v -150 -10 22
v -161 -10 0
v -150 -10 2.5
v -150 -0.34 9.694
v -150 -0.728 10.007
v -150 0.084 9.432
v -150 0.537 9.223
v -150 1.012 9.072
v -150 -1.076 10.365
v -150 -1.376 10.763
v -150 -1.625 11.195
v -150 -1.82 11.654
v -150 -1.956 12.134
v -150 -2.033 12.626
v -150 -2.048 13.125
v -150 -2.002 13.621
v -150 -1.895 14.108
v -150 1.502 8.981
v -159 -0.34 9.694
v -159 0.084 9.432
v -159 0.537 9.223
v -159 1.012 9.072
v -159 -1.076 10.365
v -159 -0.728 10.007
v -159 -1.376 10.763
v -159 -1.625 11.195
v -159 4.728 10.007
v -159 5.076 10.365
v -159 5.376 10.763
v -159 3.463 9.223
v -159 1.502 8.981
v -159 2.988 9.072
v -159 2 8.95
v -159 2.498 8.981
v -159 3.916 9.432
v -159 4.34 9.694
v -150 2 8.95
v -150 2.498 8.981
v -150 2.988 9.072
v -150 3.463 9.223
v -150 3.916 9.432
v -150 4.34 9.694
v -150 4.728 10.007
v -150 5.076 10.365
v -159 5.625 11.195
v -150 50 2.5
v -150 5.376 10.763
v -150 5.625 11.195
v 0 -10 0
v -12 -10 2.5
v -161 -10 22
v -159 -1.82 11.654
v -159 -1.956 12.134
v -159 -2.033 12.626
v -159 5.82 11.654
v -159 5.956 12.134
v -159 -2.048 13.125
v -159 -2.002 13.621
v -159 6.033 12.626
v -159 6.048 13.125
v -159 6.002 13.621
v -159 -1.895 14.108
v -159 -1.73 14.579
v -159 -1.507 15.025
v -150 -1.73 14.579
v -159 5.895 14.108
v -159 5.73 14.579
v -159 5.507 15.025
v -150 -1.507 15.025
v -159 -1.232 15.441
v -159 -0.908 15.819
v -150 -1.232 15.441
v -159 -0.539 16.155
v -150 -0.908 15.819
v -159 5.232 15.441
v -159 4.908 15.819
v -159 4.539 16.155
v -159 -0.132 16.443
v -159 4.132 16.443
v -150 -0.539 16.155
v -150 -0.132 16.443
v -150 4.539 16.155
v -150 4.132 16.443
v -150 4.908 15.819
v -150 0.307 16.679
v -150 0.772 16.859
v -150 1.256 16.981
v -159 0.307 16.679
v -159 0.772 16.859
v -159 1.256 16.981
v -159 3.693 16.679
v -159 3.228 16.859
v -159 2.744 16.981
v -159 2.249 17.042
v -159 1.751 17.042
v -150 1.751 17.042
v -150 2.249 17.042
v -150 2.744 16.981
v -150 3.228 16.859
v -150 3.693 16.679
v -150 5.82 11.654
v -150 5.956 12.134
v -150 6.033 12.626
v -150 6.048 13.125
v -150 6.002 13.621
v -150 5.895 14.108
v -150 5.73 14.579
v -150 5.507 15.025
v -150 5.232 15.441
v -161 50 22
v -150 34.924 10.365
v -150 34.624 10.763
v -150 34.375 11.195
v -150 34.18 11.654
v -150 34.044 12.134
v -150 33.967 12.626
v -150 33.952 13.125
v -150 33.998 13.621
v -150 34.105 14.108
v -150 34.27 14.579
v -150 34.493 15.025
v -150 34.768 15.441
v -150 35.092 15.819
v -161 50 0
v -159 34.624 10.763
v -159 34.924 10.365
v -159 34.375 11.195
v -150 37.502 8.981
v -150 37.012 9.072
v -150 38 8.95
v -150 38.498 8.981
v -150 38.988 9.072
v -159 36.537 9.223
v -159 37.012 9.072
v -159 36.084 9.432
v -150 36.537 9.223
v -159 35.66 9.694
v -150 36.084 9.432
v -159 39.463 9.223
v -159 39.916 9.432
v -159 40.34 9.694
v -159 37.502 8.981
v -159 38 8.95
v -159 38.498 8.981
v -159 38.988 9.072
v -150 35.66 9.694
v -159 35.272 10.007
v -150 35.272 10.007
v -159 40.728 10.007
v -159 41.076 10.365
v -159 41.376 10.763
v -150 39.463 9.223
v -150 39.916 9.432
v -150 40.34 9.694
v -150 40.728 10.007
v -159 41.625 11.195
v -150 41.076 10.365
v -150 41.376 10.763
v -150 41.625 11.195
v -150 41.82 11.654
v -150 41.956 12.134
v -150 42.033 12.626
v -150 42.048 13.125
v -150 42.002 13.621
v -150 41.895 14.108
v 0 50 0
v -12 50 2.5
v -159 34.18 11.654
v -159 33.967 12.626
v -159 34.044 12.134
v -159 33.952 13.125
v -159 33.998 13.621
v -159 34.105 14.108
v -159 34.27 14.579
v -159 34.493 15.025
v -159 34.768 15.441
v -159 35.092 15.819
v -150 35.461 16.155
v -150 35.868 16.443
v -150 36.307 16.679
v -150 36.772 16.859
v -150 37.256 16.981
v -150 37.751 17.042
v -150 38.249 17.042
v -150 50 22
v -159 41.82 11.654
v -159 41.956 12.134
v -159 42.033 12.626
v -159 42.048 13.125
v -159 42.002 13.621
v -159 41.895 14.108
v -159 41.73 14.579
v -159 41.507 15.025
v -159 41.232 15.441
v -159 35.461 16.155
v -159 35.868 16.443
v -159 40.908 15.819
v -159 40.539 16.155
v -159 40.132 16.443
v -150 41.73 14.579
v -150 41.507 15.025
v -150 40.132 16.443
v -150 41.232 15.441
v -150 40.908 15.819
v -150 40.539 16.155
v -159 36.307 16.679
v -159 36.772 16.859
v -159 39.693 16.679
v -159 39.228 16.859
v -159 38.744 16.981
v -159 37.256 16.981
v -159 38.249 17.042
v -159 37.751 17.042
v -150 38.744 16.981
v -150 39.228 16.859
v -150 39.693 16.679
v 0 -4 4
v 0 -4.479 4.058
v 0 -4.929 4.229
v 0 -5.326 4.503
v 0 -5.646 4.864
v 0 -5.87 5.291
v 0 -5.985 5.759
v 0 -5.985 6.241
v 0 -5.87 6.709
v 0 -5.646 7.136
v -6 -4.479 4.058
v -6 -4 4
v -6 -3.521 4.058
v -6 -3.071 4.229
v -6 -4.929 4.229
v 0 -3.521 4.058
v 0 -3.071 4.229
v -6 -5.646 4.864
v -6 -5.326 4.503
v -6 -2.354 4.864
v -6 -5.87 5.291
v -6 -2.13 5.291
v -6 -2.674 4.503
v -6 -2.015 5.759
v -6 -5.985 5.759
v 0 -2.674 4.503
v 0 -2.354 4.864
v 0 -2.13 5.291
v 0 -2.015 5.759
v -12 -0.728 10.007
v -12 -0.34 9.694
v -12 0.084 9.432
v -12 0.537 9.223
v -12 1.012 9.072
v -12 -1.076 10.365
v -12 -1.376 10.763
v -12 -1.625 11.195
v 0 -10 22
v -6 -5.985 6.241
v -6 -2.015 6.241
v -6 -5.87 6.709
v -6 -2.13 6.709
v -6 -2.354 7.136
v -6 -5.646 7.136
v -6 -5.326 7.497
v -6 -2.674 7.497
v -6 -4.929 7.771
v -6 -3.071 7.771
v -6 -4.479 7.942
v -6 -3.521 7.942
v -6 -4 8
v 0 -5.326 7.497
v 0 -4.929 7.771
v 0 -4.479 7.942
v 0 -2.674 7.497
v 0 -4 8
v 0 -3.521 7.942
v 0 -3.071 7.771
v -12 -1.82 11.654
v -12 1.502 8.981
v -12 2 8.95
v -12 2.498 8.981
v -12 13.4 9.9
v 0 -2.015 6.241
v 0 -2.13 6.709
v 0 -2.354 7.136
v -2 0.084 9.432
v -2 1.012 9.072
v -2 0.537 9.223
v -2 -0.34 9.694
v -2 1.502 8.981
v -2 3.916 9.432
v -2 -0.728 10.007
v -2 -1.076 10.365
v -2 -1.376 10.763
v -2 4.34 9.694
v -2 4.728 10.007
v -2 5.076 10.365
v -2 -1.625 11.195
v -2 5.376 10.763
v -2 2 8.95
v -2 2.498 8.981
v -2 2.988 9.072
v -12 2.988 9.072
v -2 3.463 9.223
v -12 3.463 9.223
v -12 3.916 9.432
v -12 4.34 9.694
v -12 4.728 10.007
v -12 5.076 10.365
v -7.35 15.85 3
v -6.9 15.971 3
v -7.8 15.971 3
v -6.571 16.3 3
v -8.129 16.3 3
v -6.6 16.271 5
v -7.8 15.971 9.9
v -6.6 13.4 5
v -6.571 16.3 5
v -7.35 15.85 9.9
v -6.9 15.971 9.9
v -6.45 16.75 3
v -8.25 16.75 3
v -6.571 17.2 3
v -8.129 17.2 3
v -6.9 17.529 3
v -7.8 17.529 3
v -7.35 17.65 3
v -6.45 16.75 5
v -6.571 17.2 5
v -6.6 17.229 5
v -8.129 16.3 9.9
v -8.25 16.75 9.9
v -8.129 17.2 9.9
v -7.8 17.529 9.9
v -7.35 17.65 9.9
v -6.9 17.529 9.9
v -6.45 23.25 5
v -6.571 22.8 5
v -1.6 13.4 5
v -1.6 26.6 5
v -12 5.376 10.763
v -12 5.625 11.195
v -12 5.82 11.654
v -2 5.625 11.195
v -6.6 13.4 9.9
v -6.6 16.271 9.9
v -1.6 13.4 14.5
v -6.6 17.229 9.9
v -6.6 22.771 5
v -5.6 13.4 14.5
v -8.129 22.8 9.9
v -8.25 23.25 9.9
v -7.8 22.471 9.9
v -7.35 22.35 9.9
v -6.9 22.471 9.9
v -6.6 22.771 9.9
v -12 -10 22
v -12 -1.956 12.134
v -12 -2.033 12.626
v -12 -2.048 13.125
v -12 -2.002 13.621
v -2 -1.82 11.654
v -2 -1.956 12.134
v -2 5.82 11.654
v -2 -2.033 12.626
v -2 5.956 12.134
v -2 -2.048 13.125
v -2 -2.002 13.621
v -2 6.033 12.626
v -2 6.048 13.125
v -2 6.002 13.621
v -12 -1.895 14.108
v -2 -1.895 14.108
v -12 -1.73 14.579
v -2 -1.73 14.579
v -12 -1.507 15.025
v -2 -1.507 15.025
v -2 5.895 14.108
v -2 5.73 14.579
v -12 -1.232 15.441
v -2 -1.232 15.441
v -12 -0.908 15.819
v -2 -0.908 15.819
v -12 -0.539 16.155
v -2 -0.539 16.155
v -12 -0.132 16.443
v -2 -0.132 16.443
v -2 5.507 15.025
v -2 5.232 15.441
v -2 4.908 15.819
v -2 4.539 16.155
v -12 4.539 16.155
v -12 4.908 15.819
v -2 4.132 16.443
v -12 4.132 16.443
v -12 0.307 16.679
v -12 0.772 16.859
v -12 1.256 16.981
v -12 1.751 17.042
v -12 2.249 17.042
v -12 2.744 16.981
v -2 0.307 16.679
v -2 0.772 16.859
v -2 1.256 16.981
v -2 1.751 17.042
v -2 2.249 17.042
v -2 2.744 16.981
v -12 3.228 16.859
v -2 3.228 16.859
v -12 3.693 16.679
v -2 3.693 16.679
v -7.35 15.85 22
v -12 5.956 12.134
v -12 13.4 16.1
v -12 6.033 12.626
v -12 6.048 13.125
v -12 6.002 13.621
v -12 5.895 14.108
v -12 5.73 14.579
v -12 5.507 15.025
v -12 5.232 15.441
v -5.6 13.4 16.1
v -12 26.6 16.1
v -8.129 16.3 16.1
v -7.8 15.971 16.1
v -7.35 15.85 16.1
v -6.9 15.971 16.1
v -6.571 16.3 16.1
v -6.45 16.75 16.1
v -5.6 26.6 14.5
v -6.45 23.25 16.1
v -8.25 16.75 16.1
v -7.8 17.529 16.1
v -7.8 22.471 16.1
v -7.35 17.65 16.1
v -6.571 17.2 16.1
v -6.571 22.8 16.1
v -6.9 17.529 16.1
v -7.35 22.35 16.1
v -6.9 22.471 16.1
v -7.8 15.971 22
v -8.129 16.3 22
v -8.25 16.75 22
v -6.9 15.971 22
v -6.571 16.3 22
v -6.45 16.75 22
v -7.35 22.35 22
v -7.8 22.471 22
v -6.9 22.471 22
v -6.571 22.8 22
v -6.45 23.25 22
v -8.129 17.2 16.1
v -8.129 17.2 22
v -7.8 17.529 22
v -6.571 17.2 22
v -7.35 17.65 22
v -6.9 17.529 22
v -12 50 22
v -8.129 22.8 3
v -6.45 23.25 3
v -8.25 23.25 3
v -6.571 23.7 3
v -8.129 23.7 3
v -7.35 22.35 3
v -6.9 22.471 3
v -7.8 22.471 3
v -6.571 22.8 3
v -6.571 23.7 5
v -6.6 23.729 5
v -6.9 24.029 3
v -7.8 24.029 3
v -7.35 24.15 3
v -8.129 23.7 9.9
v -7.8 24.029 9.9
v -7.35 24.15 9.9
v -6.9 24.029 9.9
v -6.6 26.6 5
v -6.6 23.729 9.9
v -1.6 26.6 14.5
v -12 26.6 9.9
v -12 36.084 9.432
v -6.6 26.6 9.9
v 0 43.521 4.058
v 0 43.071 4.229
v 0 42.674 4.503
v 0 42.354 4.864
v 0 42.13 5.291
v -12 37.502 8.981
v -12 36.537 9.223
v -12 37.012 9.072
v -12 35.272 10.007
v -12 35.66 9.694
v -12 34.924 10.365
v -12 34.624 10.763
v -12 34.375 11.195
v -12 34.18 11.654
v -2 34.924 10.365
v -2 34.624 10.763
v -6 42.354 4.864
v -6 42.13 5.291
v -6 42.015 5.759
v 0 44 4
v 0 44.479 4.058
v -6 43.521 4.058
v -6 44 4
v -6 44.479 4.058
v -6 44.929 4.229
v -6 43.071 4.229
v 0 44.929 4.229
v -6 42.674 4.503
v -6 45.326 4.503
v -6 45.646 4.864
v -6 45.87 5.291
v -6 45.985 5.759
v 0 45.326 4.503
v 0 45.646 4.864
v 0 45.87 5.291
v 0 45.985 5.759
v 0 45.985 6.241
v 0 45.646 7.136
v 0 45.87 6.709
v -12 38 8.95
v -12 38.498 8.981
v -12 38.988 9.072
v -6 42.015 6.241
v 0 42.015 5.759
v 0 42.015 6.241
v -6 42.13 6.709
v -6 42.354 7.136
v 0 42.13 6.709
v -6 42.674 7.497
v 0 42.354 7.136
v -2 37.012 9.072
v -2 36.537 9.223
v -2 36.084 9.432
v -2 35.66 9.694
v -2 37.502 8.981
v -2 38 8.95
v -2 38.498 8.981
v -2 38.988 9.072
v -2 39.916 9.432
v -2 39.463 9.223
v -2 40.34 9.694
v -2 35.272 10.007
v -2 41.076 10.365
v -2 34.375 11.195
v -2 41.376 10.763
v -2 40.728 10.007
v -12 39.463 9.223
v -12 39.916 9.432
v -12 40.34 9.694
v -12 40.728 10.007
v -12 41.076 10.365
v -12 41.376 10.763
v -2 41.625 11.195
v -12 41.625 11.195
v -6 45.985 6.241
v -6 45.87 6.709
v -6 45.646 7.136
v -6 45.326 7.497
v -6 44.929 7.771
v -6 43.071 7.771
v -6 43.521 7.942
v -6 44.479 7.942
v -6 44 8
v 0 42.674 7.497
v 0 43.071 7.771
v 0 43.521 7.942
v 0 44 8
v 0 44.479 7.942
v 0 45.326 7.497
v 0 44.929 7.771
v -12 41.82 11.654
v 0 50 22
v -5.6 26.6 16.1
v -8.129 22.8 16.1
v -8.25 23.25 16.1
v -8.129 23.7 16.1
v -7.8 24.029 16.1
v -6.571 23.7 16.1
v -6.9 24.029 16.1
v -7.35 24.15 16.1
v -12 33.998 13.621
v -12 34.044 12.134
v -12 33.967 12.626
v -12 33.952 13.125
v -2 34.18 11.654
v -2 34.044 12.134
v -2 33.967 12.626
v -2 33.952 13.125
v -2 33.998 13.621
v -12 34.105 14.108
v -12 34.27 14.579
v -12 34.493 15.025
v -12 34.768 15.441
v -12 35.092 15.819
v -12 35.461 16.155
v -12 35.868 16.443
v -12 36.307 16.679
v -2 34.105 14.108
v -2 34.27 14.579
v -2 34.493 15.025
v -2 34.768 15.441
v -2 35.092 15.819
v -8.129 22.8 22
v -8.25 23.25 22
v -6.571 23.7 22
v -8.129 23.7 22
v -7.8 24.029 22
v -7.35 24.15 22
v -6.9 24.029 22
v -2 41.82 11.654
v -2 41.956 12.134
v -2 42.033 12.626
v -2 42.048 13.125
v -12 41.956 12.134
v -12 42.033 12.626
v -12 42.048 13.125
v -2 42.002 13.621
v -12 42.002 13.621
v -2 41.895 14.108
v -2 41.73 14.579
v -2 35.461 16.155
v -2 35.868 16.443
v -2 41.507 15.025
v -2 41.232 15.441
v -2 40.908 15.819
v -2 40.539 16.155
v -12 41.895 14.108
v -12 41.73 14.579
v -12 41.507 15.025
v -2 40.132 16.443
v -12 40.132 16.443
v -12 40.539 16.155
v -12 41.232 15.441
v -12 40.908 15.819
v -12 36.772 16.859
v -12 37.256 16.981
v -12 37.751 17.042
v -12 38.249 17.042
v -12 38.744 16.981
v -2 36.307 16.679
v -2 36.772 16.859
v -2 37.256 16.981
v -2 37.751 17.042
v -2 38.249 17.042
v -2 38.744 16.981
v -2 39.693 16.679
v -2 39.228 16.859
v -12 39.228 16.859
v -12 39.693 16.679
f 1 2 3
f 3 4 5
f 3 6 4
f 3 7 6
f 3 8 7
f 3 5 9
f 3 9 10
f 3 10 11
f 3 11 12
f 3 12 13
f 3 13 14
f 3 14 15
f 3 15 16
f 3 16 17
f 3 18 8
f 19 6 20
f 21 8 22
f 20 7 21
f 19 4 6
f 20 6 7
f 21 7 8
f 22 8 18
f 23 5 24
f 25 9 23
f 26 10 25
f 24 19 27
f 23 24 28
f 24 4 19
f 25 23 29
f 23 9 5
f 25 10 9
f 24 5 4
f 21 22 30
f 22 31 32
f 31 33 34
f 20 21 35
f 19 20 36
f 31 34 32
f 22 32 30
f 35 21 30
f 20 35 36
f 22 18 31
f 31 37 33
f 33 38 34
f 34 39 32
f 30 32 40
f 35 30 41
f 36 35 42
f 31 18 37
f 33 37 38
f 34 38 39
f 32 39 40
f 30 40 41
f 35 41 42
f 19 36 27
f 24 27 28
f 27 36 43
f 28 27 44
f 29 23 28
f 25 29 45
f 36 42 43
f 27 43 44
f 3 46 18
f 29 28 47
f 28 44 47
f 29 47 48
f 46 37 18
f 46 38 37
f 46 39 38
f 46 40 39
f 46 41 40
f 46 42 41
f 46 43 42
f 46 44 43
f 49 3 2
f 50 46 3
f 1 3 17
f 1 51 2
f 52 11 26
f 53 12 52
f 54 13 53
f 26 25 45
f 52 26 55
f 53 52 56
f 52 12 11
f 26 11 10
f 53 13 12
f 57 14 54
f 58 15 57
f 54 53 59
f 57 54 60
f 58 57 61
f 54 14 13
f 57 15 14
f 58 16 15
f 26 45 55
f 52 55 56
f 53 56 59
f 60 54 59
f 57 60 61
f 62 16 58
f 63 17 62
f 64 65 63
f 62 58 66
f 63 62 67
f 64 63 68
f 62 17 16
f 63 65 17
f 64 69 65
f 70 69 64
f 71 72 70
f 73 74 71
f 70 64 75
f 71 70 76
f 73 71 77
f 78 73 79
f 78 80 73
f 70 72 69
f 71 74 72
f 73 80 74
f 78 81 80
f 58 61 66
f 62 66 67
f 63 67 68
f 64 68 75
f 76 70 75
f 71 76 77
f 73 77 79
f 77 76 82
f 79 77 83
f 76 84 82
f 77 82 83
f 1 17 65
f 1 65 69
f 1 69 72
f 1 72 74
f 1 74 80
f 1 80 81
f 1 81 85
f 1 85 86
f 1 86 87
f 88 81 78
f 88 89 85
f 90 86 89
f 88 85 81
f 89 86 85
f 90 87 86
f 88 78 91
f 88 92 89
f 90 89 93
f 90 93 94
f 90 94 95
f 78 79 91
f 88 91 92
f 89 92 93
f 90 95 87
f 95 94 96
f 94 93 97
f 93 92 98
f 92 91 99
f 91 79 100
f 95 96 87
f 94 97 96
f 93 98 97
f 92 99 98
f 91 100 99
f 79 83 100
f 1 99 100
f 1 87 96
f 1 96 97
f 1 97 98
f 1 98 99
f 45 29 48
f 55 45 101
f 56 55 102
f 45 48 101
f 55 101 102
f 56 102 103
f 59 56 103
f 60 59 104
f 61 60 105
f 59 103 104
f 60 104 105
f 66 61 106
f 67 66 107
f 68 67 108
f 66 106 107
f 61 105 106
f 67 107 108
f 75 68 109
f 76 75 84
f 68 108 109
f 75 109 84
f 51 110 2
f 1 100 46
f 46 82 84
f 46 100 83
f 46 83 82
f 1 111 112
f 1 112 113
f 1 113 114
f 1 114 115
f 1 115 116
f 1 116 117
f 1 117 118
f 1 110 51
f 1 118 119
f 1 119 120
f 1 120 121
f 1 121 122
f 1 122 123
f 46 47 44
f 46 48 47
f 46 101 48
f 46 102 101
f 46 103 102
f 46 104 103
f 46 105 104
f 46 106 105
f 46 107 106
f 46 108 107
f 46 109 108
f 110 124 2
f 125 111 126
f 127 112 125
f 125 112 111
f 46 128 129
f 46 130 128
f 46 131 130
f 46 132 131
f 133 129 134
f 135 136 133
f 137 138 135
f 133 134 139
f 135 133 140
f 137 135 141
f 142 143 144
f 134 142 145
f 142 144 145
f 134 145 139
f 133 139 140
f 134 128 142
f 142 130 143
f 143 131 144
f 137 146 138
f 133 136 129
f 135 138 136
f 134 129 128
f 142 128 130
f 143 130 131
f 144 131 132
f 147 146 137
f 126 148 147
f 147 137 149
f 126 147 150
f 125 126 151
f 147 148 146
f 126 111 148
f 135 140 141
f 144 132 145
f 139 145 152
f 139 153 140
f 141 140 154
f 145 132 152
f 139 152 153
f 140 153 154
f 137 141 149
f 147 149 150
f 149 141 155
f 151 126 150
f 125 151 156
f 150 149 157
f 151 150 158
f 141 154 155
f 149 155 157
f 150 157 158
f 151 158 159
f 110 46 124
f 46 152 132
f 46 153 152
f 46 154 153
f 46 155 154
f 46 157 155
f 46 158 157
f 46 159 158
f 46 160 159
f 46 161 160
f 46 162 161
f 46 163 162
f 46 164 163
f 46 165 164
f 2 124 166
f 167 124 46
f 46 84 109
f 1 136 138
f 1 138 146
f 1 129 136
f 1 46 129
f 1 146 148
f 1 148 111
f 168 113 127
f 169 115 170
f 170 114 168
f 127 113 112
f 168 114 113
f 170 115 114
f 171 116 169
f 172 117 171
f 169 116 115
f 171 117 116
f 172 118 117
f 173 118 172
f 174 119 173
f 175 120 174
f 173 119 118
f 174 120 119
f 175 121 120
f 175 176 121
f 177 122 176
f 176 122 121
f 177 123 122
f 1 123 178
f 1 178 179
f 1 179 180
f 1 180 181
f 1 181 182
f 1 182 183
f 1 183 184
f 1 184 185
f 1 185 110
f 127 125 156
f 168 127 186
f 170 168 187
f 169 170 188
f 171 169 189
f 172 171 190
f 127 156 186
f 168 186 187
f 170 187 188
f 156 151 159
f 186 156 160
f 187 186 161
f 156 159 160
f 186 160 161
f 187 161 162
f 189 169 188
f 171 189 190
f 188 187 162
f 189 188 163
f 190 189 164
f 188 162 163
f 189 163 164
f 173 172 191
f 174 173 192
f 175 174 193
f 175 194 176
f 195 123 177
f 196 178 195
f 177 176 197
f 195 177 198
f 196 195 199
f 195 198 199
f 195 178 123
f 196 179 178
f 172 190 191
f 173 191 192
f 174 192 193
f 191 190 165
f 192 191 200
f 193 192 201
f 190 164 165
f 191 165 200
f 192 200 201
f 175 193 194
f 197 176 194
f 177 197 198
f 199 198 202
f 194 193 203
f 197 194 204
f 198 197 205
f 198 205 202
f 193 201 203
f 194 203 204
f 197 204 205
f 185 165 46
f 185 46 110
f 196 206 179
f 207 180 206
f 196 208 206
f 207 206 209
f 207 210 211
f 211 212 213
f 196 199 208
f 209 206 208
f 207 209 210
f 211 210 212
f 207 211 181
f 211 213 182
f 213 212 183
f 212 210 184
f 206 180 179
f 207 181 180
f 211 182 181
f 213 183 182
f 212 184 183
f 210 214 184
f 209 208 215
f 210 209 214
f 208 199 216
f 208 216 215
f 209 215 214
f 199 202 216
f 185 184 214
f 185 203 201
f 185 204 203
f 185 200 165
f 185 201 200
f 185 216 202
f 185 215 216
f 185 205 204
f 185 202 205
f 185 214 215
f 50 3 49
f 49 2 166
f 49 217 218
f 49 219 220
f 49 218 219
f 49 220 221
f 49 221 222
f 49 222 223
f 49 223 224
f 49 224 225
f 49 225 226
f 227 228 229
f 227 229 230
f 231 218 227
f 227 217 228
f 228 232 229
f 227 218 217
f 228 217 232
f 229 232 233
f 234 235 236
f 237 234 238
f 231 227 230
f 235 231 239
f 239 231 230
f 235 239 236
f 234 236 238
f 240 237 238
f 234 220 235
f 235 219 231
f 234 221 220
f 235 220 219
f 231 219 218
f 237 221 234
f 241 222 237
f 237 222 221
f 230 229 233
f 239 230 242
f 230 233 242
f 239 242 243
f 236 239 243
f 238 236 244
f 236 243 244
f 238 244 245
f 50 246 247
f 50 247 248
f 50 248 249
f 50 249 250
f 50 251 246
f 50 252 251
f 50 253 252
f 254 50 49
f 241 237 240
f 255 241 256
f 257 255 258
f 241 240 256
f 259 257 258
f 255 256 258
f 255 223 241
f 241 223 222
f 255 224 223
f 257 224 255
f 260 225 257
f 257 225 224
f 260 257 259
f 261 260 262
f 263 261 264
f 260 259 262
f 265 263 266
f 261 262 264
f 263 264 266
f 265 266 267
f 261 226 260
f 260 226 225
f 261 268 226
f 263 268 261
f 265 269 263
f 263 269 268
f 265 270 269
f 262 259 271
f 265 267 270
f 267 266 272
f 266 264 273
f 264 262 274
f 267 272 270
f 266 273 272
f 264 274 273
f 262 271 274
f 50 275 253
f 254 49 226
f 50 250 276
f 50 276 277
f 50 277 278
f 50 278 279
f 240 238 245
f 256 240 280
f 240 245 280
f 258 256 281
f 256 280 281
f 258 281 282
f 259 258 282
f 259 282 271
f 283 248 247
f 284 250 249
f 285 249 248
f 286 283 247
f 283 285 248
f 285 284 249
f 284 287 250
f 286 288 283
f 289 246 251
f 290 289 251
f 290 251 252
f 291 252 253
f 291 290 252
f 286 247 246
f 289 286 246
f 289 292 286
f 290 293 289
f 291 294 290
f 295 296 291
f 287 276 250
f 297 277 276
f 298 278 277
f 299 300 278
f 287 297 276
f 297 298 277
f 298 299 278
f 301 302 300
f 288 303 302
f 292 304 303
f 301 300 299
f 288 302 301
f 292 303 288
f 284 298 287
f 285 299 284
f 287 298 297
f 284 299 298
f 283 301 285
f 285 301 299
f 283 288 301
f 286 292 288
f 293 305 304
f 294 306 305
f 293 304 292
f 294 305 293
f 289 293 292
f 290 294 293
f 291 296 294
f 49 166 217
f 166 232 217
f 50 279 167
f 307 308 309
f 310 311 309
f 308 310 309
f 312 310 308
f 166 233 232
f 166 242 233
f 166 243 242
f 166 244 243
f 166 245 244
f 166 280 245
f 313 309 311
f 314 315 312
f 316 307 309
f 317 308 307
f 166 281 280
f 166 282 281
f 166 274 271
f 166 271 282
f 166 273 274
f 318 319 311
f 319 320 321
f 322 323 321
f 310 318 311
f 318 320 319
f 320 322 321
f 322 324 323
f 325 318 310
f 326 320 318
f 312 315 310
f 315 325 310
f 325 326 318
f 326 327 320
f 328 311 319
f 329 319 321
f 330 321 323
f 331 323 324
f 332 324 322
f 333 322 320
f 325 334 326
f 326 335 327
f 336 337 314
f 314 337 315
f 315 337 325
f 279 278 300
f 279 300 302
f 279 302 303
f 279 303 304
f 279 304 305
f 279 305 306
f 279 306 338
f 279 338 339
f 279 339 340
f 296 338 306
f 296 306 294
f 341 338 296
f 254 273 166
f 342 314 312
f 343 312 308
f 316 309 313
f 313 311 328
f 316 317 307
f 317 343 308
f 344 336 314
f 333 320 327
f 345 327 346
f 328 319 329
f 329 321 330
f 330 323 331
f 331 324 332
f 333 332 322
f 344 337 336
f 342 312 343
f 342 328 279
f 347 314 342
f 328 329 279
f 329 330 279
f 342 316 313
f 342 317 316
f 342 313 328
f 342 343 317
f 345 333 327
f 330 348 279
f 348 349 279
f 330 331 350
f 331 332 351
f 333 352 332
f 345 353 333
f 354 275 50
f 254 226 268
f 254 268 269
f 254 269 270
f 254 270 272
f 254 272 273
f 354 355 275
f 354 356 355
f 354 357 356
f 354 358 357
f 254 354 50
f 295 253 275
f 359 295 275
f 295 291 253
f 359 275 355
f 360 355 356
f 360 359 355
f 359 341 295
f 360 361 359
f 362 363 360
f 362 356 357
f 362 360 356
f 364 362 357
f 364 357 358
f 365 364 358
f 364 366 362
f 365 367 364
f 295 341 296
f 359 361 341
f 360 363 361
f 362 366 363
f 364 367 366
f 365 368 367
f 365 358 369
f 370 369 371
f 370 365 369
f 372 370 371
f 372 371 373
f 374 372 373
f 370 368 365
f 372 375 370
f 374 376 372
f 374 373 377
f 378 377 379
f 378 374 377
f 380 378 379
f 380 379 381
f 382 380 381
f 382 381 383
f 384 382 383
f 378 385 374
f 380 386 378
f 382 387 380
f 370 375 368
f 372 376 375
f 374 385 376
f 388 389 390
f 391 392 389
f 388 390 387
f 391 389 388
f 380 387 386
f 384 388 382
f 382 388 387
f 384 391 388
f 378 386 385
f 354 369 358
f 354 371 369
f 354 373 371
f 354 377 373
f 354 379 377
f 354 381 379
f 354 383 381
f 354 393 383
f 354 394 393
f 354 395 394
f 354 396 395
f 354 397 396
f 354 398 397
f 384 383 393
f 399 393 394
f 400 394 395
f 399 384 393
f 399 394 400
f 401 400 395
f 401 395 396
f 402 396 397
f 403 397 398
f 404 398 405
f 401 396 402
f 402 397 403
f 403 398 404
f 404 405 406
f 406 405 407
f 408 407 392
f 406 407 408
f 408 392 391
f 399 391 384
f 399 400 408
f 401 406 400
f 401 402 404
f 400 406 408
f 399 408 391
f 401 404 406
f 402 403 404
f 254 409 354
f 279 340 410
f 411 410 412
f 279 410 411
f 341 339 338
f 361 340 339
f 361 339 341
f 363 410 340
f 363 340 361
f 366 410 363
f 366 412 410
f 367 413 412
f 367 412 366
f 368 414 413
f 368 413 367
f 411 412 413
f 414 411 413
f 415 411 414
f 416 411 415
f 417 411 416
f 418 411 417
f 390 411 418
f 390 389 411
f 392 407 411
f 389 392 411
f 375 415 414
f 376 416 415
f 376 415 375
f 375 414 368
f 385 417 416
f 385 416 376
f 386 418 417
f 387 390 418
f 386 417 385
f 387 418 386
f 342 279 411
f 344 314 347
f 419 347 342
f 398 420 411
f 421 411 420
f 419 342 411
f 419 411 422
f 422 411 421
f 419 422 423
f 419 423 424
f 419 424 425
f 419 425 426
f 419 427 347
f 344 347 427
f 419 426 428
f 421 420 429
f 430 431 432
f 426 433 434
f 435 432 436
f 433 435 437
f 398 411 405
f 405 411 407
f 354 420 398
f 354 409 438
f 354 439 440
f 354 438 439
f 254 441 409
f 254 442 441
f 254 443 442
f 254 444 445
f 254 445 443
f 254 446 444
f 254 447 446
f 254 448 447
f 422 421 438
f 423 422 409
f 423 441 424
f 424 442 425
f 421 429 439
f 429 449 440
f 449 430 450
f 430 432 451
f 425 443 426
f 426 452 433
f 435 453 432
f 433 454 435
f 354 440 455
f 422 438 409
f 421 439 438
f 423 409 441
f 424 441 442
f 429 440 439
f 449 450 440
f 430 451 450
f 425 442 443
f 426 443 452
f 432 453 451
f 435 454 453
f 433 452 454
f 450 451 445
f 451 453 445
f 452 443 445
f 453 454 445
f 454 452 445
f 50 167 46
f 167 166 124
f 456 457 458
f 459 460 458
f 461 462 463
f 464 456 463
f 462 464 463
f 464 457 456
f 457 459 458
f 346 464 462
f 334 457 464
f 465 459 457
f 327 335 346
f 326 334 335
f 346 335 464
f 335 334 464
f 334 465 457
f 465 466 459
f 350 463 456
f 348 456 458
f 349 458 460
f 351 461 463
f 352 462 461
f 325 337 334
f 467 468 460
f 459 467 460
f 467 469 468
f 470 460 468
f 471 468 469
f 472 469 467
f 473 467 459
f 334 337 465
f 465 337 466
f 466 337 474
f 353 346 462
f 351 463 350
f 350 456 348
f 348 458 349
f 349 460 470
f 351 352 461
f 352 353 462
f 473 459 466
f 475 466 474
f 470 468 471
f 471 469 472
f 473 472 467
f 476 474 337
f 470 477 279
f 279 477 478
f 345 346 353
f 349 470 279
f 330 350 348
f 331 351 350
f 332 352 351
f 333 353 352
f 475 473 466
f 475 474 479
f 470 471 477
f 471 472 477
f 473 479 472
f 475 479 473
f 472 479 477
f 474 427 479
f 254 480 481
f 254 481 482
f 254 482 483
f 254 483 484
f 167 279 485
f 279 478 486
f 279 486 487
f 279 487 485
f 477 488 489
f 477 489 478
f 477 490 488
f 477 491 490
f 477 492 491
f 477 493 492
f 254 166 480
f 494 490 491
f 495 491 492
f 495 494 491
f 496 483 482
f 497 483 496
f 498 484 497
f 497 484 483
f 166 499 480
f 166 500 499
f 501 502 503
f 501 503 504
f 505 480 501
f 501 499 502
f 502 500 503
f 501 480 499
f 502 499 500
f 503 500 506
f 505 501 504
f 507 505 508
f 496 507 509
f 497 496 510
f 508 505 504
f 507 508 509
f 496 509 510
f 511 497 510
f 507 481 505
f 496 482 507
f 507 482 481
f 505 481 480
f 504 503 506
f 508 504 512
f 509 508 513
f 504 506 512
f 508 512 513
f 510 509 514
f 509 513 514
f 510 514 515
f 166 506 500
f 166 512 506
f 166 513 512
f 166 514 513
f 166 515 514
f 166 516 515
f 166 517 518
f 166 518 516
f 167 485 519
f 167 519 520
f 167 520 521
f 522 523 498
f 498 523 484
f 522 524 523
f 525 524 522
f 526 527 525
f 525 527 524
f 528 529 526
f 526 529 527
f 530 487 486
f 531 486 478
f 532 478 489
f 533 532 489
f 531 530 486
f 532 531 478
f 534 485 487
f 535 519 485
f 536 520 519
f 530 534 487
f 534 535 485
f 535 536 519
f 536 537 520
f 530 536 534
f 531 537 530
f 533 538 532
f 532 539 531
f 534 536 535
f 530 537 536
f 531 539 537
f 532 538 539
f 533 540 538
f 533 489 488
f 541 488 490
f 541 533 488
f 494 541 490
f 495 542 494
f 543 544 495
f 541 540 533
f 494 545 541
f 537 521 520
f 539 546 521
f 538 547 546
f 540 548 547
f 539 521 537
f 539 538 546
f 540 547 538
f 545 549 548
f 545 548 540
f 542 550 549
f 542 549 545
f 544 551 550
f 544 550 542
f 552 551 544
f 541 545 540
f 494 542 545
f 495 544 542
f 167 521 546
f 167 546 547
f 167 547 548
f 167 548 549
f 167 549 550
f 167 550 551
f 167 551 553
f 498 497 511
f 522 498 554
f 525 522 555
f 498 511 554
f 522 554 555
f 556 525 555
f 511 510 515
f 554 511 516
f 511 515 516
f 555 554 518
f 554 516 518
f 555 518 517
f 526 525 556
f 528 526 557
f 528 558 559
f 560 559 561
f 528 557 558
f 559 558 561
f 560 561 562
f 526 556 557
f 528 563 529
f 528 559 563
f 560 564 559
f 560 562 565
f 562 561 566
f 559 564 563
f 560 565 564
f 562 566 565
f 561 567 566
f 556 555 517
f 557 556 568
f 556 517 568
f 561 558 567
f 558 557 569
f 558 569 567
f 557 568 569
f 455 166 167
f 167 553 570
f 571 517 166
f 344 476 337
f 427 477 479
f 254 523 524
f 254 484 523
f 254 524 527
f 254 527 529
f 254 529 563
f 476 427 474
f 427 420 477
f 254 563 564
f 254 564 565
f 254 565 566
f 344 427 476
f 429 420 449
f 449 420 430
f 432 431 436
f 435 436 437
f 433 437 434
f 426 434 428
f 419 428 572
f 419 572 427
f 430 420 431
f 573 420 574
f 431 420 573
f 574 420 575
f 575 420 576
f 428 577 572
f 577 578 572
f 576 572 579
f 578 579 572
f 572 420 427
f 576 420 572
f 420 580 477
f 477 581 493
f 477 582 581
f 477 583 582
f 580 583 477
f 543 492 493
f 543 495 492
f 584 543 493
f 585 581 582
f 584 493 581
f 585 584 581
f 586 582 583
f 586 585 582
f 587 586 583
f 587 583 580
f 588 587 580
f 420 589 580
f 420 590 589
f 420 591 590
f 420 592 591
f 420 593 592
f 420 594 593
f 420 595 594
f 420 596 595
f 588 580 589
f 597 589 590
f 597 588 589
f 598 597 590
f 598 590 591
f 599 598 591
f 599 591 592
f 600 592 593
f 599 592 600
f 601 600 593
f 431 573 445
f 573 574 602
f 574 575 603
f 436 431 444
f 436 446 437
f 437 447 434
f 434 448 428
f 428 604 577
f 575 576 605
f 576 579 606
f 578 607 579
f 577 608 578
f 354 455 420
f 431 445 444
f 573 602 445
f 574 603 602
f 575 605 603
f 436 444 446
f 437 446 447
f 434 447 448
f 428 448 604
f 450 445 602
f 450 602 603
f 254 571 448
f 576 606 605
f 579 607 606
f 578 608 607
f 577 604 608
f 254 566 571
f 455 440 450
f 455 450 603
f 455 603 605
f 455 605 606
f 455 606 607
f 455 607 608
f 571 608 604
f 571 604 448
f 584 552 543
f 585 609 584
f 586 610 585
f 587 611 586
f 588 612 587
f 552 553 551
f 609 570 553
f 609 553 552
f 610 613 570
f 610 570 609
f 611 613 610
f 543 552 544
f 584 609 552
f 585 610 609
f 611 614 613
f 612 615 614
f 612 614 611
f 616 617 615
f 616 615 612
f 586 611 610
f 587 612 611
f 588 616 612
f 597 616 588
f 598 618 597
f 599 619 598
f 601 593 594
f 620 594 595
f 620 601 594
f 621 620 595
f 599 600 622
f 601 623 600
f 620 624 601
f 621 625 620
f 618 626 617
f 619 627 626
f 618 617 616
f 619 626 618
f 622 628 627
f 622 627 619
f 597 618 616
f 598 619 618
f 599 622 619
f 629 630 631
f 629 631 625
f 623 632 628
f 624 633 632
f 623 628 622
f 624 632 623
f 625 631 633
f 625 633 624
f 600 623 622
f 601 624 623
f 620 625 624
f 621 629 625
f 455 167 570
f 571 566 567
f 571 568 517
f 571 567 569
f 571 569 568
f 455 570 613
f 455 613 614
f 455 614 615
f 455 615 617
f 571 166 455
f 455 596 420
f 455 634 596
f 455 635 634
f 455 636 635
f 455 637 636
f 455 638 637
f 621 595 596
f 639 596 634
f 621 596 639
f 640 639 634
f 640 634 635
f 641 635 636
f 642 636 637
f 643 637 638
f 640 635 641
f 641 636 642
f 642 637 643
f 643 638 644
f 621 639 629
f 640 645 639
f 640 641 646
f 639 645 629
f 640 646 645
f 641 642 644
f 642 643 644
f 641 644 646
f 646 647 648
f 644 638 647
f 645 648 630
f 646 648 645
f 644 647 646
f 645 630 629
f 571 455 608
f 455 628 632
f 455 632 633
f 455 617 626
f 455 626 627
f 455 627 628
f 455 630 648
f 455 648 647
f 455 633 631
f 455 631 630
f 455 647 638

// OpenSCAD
// file: lib/lib.scad
// Shared helpers. Include AFTER params.scad (needs TOL, M3_* etc.).
$fa = 4; $fs = 0.5;

module rrect(size, r) {            // 2D rounded rectangle, centred
    r2 = min(r, min(size[0], size[1]) / 2 - 0.001);
    offset(r = r2) square([size[0] - 2 * r2, size[1] - 2 * r2], center = true);
}
module rbox(size, r, center_xy = true) {   // box with rounded vertical edges
    translate(center_xy ? [0, 0, 0] : [size[0] / 2, size[1] / 2, 0])
        linear_extrude(size[2]) rrect([size[0], size[1]], r);
}
module rbox_at(x0, x1, y0, y1, z0, z1, r = 0.01) {
    translate([(x0 + x1) / 2, (y0 + y1) / 2, z0]) rbox([x1 - x0, y1 - y0, z1 - z0], r);
}
module box_at(x0, x1, y0, y1, z0, z1) { translate([x0, y0, z0]) cube([x1 - x0, y1 - y0, z1 - z0]); }

module ring(ro, ri, h) { difference() { cylinder(r = ro, h = h); translate([0, 0, -1]) cylinder(r = ri, h = h + 2); } }
module ring_sector(ro, ri, h, a0, a1) {
    intersection() {
        ring(ro, ri, h);
        linear_extrude(h) polygon(concat([[0, 0]], [for (a = [a0 : (a1 - a0) / 24 : a1]) 2 * ro * [cos(a), sin(a)]]));
    }
}
// teardrop hole along an axis lying horizontal (axis = Y after rotation), printable w/o support
module teardrop2d(d) { union() { circle(d = d); rotate(45) square(d / 2); } }
// vertical heat-set insert hole, opening at z=0 going +z (depth l)
module insert_hole(l = M3_INSERT_L) { translate([0, 0, -EPS]) cylinder(d = M3_INSERT_D, h = l + EPS); }
module m3_clear(l) { translate([0, 0, -EPS]) cylinder(d = M3_CLEAR, h = l + 2 * EPS); }
module m3_csk(l) {  // countersunk clearance from z=0 upward, head at z=0 side
    translate([0, 0, -EPS]) { cylinder(d = M3_CLEAR, h = l + 2 * EPS); cylinder(d1 = 6.4, d2 = M3_CLEAR, h = 1.7); }
}
module card2d() { rrect([CARD_L, CARD_W], CARD_R); }
module card_at(cy, z) { translate([0, cy, z]) linear_extrude(CARD_T) card2d(); }

// ---- gears ----
function _inv(a) = tan(a) - a * PI_ / 180;           // involute function, a in deg
function _invpt(rb, r, ang0, s) = let(al = acos(rb / r), th = ang0 - s * (_inv(al) * 180 / PI_)) [r * cos(th), r * sin(th)];
module involute_gear2d(m, z, pa = 20, clearance = 0.05) {
    rp = m * z / 2; rb = rp * cos(pa); ra = rp + m - clearance; rf = rp - 1.25 * m;
    half = 90 / z + _inv(pa) * 180 / PI_;            // tooth half-angle at base (deg)
    n = 8;
    rs = [for (i = [0 : n]) max(rb, rf) + (ra - max(rb, rf)) * i / n];
    union() {
        circle(r = rf, $fn = z * 4);
        for (k = [0 : z - 1]) rotate(k * 360 / z) polygon(concat(
            [[rf * cos(-half), rf * sin(-half)]],
            [for (r = rs) let(p = _invpt(rb, r, half, 1)) [p[0], -p[1]]],
            [for (i = [n : -1 : 0]) _invpt(rb, rs[i], half, 1)],
            [[rf * cos(half), rf * sin(half)]]));
    }
}
// straight gear rack (2D in XY: teeth along +x, pointing -y, pitch line at y=0)
module gear_rack2d(m, len, back = 3) {
    p = PI_ * m; ad = m; de = 1.25 * m; t = tan(20);
    n = ceil(len / p) + 1;
    intersection() {
        union() {
            translate([0, de]) square([len, back]);
            for (i = [0 : n]) translate([i * p - p / 4, 0]) polygon([
                [-(p / 4 + de * t), de + 0.01], [p / 4 + de * t + 0.01, de + 0.01],
                [p / 4 - ad * t, -ad], [-(p / 4 - ad * t), -ad] ]);
        }
        translate([0, -ad - 1]) square([len, ad + de + back + 2]);
    }
}
// GT2 belt-tooth profile ring (teeth outward), 2D
module gt2_ring2d(n, r_land, ri) {
    union() {
        difference() { circle(r = r_land + 0.01, $fn = n * 2); circle(r = ri, $fn = n * 2); }
        for (k = [0 : n - 1]) rotate(k * 360 / n)
            translate([r_land, 0]) hull() { translate([-0.2, 0]) square([0.2, 1.0], center = true); translate([0.25, 0]) circle(r = 0.5, $fn = 12); }
    }
}
// main file
// Rail frame (+X): bottom and top blocks hold the two 8 mm rods, joined by an outer web.
// Microswitch pocket in the bottom block (actuated by the carriage at home).
// Print: lying on the web's outer face, teardrop rod holes, no supports.
include <params.scad>
include <lib/lib.scad>
RF_X0 = ROD_X - 9;  RF_Y0 = -10;  RF_Y1 = 50;
MSW_X = ROD_X;  MSW_Z0 = RAIL_BOT_Z1 + 0.1 - 6.5;    // switch body top 0.1 above block (lever 0.3)
module rail_frame() difference() {
    union() {
        box_at(RF_X0, RAIL_WEB_X1, RF_Y0, RF_Y1, TT_TOP, RAIL_BOT_Z1);
        box_at(RF_X0, RAIL_WEB_X1, RF_Y0, RF_Y1, RAIL_TOP_Z0, RAIL_TOP_Z1);
        box_at(RAIL_WEB_X0, RAIL_WEB_X1, RF_Y0, RF_Y1, TT_TOP, RAIL_TOP_Z1);
    }
    for (y = ROD_Y) {
        translate([ROD_X, y, ROD_Z0]) cylinder(d = ROD_D + 0.1, h = RAIL_BOT_Z1 - ROD_Z0 + 1);
        translate([ROD_X, y, RAIL_TOP_Z0 - 1]) cylinder(d = ROD_D + 0.1, h = ROD_Z1 - RAIL_TOP_Z0 + 1);
    }
    translate([MSW_X, MSW_Y, MSW_Z0]) box_at(-3.1, 3.1, -6.6, 6.6, 0, 10);
    translate([MSW_X, MSW_Y, MSW_Z0 - 4]) box_at(-1.5, 8, -6.6, 6.6, 0, 5);           // lead slot
    for (y = [-3.25, 3.25]) translate([MSW_X - 10, MSW_Y + y, MSW_Z0 + 1.75]) rotate([0, 90, 0]) cylinder(d = 1.8, h = 20);
    for (p = FIX_RAIL) translate([p[0], p[1], TT_TOP]) insert_hole();
}
module rail_frame_print() rotate([0, -90, 0]) translate([-RAIL_WEB_X1, 0, -TT_TOP]) mirror([1, 0, 0]) translate([-2 * RAIL_WEB_X1, 0, 0]) rail_frame();
rail_frame_print();
